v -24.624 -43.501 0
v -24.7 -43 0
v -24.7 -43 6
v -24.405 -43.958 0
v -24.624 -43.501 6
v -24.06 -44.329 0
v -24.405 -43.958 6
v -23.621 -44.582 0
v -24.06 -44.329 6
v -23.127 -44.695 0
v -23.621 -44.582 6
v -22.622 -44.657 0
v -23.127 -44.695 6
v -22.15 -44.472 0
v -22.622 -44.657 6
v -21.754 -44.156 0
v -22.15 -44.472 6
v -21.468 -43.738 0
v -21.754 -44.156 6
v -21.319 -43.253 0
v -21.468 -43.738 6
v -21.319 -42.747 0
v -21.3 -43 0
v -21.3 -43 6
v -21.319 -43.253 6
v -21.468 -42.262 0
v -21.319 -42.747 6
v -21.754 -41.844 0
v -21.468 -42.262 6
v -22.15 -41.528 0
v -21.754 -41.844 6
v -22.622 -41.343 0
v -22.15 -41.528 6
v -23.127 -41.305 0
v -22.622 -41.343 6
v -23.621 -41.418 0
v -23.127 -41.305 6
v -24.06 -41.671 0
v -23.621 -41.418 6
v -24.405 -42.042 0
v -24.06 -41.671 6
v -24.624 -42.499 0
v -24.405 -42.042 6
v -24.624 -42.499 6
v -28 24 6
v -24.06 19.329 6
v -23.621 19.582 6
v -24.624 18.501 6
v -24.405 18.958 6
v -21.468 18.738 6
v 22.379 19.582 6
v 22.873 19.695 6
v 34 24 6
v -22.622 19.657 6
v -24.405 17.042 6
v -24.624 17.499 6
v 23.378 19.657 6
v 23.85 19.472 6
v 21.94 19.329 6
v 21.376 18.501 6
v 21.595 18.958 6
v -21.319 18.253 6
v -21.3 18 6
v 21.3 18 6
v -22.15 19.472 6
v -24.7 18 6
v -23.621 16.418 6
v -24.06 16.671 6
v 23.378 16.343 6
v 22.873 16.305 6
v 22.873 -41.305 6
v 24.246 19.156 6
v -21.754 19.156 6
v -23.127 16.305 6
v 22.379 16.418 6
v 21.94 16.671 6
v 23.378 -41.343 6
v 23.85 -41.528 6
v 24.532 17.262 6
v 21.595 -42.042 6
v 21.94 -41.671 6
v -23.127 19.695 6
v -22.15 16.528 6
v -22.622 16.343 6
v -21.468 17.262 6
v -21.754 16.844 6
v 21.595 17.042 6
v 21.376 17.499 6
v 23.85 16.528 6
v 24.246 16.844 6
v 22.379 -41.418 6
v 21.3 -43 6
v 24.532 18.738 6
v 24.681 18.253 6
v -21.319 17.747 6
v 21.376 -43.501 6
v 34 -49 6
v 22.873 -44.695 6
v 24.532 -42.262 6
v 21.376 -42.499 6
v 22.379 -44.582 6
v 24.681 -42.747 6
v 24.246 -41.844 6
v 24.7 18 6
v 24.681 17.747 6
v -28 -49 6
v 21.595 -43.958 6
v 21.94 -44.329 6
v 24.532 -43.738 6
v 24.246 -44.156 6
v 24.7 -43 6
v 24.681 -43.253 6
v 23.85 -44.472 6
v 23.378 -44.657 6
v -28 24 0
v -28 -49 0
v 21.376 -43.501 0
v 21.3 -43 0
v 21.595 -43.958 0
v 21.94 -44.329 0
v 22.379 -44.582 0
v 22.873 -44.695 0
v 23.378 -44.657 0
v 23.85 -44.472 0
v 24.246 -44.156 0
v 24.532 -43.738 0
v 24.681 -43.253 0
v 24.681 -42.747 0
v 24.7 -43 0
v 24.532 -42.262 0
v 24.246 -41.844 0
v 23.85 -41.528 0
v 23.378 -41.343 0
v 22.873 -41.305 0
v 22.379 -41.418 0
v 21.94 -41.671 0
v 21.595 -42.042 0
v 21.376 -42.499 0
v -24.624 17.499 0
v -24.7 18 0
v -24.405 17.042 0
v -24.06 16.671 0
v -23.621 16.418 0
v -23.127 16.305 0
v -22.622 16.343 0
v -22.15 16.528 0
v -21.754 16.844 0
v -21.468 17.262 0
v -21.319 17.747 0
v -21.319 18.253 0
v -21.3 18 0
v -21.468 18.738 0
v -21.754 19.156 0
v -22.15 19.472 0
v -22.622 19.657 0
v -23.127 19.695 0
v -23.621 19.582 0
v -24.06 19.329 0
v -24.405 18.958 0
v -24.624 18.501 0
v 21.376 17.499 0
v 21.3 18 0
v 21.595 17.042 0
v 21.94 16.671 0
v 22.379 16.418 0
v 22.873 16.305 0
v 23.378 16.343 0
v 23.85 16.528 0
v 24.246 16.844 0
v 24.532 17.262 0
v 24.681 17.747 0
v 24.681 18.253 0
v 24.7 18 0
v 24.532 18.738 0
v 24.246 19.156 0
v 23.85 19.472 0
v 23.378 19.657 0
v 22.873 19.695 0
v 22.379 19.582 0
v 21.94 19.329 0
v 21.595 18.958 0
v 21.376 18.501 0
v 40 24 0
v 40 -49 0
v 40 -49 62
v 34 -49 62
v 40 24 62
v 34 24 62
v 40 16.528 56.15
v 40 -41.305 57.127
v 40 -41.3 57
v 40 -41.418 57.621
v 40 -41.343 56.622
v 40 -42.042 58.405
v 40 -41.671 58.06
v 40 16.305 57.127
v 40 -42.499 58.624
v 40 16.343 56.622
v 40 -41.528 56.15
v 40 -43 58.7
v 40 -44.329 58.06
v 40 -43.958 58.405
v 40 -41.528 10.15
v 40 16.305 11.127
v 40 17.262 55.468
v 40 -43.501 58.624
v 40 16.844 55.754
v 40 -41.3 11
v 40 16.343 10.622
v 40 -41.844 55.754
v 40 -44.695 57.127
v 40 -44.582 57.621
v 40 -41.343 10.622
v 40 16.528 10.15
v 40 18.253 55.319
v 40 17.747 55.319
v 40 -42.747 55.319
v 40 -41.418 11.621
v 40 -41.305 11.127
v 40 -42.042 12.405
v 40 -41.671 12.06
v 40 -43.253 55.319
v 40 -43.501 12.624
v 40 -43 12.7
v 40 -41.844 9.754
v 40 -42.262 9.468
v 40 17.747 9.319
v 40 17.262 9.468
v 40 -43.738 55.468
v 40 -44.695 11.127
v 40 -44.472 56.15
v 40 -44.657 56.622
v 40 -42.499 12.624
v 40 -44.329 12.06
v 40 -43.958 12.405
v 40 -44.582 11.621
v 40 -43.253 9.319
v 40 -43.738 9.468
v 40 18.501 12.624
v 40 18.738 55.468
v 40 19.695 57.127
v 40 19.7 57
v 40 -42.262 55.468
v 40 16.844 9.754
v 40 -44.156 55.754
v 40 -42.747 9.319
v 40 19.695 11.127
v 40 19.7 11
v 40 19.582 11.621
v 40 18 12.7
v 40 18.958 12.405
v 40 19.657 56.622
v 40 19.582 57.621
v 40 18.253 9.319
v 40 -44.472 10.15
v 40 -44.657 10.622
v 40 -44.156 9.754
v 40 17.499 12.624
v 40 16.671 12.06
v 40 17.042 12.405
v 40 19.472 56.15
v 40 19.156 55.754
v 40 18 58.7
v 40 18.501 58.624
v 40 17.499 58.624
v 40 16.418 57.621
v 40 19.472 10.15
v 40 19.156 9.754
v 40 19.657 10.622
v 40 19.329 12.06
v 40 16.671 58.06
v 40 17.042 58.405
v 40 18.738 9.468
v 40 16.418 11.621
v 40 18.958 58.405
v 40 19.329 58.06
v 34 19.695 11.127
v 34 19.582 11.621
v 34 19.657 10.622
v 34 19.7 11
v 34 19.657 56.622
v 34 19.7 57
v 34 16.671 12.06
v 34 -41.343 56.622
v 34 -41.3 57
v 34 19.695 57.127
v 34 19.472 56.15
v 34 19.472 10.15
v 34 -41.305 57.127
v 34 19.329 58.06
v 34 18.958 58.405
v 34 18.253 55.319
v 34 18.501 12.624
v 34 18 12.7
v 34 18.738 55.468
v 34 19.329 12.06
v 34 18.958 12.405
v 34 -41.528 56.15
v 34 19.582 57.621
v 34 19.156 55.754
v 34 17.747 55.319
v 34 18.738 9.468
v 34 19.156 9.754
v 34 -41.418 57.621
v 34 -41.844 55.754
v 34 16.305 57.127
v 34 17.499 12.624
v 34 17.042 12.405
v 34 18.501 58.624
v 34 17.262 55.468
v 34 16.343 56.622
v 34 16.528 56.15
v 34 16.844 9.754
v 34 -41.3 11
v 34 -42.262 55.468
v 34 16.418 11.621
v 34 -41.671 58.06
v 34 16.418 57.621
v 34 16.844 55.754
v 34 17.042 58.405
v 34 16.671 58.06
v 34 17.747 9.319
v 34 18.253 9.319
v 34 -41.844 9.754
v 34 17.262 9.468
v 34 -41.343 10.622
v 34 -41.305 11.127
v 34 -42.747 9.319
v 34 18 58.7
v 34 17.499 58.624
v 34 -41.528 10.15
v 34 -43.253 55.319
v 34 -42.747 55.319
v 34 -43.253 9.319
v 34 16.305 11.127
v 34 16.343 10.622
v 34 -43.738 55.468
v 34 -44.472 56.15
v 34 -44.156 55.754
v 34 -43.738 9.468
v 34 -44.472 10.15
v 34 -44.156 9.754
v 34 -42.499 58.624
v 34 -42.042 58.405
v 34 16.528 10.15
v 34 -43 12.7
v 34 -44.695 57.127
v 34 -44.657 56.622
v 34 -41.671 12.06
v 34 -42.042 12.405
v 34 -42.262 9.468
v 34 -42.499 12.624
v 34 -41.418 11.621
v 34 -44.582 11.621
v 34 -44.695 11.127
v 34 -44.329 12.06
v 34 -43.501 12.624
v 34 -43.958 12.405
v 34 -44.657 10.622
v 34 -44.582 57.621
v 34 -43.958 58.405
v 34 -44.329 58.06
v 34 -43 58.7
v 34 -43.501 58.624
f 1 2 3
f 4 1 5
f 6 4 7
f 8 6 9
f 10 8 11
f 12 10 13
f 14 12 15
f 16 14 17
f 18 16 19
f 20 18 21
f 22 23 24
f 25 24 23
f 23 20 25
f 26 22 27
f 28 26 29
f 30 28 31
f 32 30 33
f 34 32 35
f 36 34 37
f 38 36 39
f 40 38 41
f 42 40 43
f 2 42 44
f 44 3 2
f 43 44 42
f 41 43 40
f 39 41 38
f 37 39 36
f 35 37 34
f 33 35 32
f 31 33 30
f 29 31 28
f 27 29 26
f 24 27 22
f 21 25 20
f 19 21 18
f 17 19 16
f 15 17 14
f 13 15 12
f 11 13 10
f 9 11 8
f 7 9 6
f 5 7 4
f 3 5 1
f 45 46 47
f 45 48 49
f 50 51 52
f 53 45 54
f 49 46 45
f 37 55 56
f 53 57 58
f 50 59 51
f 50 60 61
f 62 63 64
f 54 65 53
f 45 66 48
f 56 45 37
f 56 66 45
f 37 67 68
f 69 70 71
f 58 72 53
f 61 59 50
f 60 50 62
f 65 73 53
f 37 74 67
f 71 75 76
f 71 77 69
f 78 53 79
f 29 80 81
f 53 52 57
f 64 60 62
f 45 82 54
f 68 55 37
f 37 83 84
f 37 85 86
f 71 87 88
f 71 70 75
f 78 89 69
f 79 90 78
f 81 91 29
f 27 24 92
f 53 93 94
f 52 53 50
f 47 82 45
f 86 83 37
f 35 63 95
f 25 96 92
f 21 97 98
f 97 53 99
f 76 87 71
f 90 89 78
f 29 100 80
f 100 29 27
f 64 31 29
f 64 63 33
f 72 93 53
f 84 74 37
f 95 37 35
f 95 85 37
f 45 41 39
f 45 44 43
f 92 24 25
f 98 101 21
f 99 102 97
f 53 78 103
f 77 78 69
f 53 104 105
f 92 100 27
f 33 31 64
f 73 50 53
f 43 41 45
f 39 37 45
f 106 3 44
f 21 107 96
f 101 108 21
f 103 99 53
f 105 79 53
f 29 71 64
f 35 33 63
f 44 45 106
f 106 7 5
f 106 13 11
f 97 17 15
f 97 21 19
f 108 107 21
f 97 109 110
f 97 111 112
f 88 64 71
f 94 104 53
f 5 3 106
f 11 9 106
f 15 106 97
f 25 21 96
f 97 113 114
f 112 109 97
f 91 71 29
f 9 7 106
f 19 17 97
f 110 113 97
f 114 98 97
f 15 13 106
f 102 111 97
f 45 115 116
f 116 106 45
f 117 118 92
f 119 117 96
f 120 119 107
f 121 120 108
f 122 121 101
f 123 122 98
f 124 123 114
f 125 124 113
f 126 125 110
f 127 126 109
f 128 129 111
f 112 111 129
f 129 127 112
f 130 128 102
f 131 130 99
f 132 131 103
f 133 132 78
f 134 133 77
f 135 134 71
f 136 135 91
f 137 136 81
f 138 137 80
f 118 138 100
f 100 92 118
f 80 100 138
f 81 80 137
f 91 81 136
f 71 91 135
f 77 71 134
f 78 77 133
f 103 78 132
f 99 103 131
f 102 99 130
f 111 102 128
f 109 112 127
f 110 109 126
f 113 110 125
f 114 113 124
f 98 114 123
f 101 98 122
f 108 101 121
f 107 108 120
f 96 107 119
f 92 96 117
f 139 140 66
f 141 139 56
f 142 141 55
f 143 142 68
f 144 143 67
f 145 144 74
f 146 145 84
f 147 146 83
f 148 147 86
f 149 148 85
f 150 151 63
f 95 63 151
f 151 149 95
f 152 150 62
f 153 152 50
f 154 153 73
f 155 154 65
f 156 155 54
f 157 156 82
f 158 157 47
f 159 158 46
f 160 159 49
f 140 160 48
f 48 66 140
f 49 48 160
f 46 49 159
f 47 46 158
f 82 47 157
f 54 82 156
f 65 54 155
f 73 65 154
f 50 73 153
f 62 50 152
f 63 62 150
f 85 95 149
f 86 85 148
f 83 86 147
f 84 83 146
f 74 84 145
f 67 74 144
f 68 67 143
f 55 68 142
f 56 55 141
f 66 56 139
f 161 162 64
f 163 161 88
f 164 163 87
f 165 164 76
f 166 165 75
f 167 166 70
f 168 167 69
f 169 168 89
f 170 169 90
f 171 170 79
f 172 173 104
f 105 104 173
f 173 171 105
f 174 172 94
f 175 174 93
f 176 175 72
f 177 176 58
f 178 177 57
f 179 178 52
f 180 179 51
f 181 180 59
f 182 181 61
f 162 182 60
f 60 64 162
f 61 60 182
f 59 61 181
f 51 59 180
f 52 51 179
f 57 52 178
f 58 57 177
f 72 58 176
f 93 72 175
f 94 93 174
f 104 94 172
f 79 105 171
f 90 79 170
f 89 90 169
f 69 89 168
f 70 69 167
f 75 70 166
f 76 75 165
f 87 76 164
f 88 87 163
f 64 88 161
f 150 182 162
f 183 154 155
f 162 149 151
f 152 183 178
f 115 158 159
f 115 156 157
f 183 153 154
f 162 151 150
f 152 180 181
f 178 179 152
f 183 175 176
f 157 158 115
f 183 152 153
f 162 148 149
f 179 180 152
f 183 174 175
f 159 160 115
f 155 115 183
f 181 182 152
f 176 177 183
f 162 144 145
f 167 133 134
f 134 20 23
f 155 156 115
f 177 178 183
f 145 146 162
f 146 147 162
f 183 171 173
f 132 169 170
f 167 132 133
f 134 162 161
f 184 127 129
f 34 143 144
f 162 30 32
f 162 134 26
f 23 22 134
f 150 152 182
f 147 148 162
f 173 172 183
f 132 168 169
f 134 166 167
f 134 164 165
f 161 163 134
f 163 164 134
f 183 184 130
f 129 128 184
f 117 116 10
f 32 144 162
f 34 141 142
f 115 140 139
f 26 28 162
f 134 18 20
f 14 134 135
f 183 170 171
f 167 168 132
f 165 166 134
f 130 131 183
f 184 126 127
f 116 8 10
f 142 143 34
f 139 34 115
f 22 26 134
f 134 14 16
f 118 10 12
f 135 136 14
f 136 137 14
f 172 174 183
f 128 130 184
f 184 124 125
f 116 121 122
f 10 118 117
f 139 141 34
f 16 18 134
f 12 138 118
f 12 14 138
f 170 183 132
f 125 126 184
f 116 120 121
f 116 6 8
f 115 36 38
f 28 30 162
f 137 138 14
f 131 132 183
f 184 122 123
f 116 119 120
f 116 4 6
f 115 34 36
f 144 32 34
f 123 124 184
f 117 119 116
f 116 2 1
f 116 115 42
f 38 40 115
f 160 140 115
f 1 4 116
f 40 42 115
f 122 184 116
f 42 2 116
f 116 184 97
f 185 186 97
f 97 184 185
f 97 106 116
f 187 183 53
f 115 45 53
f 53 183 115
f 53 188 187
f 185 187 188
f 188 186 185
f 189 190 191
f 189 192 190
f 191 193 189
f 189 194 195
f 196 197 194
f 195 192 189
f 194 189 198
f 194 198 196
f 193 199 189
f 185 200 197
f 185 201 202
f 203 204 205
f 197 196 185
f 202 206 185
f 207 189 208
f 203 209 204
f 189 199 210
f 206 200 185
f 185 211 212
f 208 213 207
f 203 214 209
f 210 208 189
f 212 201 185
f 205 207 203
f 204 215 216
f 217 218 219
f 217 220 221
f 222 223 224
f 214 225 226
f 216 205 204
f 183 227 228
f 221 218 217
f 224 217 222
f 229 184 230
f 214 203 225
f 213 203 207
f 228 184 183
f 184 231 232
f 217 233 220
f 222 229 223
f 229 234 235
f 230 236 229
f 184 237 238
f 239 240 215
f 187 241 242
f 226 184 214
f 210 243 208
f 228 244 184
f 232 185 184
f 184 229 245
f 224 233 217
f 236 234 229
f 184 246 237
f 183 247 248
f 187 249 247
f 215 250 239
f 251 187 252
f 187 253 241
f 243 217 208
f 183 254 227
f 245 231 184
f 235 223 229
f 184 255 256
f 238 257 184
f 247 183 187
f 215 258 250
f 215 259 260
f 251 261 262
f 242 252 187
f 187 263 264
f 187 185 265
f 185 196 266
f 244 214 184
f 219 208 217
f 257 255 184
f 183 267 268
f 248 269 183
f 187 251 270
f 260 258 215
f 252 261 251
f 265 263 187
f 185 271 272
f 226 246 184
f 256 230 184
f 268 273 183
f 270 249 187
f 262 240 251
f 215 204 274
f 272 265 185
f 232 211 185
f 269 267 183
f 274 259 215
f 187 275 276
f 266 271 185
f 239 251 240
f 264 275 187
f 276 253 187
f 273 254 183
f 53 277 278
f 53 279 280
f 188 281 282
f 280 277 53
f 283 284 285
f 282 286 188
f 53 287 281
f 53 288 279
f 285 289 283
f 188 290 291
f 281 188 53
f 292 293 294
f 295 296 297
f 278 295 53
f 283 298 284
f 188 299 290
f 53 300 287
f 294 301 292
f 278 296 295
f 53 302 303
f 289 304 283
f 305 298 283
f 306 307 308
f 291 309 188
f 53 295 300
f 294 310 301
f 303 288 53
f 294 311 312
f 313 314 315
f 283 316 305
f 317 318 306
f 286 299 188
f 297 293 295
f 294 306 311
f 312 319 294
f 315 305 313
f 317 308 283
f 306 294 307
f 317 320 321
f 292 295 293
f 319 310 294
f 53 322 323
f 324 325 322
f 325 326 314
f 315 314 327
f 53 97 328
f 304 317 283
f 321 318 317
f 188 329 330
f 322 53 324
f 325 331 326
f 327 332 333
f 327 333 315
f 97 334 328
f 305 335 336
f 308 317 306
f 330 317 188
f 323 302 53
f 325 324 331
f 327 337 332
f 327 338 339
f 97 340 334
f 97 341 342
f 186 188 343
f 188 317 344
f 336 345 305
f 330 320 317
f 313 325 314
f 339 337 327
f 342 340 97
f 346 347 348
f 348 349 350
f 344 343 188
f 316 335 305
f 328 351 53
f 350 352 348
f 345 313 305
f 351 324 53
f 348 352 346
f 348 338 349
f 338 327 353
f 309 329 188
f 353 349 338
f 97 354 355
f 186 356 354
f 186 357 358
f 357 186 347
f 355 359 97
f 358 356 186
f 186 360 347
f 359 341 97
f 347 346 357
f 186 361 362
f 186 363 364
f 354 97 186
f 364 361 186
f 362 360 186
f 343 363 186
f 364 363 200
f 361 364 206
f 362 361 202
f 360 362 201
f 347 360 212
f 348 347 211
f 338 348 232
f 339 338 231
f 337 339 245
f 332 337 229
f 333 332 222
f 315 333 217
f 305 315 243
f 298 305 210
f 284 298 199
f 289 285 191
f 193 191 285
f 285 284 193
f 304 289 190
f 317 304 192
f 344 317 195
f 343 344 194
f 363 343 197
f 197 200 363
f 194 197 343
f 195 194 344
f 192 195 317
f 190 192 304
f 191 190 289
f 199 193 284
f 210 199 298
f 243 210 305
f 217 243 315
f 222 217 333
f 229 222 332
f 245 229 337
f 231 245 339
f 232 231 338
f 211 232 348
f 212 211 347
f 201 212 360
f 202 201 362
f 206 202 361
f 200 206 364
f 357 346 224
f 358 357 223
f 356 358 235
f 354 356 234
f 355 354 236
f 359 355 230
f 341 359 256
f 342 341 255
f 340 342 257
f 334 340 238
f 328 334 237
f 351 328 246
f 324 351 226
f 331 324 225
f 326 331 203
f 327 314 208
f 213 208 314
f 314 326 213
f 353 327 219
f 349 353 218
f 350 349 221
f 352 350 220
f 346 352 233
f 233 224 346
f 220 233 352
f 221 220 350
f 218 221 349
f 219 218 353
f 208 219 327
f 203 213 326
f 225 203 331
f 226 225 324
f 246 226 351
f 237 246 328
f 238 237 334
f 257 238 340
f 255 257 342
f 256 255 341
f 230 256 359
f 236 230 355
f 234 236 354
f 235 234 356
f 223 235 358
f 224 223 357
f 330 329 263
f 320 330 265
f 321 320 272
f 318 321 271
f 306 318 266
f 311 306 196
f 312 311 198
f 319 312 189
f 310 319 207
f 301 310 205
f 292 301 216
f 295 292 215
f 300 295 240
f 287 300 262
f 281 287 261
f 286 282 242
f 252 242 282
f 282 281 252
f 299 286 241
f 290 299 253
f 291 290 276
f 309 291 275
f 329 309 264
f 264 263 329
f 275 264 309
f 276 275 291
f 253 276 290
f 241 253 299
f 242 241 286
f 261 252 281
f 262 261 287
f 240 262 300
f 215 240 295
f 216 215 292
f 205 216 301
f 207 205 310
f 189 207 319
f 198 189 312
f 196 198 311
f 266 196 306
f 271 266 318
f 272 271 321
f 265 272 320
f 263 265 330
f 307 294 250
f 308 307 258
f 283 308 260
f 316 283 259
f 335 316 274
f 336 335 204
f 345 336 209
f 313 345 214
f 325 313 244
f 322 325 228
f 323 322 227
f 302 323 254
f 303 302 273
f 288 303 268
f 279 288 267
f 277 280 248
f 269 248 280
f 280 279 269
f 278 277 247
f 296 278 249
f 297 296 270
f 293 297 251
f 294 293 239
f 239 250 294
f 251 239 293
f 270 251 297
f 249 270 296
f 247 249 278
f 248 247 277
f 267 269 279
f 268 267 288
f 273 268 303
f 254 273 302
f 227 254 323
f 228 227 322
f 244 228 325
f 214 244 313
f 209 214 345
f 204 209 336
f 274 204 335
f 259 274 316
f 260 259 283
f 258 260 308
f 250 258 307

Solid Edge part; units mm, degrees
sketch "Sketch1" plane through (0, 0, 0) normal (0, 0, 1) x (1, 0, 0)
  line L0 (-28, -49) -> (40, -49)
  line L1 (40, -49) -> (40, 24)
  line L2 (40, 24) -> (-28, 24)
  line L3 (-28, 24) -> (-28, -49)
  circle A0 centre (-23, -43) radius 1.7
  circle A1 centre (23, -43) radius 1.7
  circle A2 centre (-23, 18) radius 1.7
  circle A3 centre (23, 18) radius 1.7
extrude "Protrusion1" add sketch "Sketch1" along normal blind 6
sketch "Sketch2" plane through (0, 0, 6) normal (0, 0, 1) x (1, 0, 0)
  line L0 (34, -49) -> (40, -49)
  line L1 (40, -49) -> (40, 24)
  line L2 (40, 24) -> (34, 24)
  line L3 (34, 24) -> (34, -49)
extrude "ExtrudedProtrusion_2" add sketch "Sketch2" along normal blind 56
sketch "Sketch3" plane through (34, 0, 0) normal (1, 0, 0) x (0, 1, 0)
  circle A0 centre (-43, 57) radius 1.7
  circle A1 centre (-43, 11) radius 1.7
  circle A2 centre (18, 57) radius 1.7
  circle A3 centre (18, 11) radius 1.7
extrude "ExtrudedCutout_1" cut sketch "Sketch3" along normal blind 6
